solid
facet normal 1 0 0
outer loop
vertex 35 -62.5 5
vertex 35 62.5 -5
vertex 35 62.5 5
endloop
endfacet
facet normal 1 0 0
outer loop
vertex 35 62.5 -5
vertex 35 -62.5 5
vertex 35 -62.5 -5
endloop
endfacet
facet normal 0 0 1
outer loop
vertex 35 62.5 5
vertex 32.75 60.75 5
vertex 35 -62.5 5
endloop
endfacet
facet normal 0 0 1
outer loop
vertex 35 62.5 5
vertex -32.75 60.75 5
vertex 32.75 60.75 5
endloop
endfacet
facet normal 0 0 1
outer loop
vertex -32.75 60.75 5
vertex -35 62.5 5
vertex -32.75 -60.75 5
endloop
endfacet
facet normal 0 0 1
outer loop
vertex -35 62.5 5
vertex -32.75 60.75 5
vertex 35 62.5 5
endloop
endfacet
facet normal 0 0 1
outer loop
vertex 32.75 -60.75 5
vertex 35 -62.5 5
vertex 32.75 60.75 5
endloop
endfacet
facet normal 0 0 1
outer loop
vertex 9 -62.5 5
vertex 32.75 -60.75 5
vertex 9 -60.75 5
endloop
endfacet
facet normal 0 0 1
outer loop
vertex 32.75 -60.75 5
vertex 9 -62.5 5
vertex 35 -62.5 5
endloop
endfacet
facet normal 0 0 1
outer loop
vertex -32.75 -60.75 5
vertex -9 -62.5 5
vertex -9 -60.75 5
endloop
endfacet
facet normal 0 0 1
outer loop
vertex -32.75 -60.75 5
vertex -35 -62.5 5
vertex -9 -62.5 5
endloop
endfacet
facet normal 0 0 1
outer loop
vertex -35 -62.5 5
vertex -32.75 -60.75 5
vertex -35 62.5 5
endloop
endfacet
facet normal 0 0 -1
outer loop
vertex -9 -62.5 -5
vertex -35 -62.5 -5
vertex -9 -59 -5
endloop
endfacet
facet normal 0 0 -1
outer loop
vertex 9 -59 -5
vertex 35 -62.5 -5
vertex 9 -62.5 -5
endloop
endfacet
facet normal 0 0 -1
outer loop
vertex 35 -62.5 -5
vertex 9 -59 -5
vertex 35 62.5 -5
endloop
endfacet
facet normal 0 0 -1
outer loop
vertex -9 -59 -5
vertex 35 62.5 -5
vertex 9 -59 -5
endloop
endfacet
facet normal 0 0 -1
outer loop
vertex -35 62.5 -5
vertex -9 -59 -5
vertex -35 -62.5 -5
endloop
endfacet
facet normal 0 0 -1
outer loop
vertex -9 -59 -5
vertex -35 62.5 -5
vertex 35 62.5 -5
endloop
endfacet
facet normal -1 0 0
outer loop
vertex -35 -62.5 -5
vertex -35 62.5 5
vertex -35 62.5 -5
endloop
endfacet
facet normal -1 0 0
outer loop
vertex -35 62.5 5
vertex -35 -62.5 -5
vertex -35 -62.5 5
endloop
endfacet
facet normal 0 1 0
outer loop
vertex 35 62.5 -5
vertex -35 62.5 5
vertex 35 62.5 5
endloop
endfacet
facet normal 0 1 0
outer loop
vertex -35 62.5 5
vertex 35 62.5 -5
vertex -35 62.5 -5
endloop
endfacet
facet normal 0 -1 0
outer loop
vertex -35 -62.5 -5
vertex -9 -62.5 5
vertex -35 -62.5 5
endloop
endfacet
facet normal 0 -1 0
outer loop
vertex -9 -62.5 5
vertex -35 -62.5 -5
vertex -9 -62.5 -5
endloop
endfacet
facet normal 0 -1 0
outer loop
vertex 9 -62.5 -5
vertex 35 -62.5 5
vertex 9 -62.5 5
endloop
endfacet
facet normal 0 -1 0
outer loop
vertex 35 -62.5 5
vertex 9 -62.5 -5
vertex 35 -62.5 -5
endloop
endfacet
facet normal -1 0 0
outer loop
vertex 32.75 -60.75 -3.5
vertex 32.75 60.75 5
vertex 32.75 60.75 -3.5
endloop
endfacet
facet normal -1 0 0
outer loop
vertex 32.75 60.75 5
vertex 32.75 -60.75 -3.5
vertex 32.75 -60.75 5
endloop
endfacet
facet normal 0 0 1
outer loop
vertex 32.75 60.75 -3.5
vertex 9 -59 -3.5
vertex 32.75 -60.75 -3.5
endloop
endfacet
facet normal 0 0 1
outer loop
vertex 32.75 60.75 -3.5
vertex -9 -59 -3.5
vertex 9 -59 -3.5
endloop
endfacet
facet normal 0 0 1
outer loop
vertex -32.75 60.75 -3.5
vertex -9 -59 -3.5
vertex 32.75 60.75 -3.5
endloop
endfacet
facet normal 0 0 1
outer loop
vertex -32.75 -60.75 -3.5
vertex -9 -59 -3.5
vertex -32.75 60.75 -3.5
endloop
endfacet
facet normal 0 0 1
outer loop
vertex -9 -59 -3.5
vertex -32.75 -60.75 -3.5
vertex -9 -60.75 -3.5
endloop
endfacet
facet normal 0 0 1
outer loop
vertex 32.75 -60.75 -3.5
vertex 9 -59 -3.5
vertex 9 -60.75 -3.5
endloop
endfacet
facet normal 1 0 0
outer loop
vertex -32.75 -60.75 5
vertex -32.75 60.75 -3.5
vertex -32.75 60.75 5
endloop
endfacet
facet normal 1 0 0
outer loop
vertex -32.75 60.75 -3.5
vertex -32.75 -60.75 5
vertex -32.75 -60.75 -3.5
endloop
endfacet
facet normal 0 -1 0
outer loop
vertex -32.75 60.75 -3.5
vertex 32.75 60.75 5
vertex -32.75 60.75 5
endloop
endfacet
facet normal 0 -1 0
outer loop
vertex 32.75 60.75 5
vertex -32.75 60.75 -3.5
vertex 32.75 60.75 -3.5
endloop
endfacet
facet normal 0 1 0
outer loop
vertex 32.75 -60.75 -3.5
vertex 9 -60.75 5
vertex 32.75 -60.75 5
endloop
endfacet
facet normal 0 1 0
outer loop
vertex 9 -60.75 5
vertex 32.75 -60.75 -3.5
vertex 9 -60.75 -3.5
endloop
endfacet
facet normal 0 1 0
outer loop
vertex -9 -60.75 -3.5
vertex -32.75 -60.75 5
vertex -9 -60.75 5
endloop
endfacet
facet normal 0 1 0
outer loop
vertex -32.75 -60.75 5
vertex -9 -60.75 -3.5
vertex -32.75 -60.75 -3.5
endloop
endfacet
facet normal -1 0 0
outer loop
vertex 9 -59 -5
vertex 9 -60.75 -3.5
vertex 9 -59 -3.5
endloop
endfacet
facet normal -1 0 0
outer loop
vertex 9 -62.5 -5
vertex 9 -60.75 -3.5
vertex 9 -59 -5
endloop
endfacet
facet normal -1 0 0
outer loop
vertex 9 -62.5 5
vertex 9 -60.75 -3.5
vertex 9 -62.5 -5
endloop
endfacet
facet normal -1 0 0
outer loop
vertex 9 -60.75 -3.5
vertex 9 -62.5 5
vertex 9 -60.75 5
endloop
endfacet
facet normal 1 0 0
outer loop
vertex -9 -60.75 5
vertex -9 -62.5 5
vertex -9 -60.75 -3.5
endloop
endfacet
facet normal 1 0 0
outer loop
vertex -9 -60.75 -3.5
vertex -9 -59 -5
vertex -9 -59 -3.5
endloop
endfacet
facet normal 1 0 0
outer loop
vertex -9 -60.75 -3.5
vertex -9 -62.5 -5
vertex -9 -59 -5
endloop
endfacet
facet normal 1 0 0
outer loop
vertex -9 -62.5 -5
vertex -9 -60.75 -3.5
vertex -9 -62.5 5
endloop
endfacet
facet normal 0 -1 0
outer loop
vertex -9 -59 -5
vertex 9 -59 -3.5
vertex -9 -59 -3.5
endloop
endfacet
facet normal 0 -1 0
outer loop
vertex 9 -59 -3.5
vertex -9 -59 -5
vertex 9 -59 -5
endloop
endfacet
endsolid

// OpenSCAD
$fn = 100;


difference() {
    cube([70, 125, 10], true);
    translate([0, 0, 1]) cube([65.5, 121.5, 9], true);
    /*translate([-40, 17.5, 15]) rotate([0, 90, 0]) cylinder(80, 7, 7, true);
    translate([40, 19.5, 15]) rotate([0, 90, 0]) cylinder(80, 7, 7, true);
    translate([0, -24, 20]) cube([72, 60, 50], true);*/
    translate([0, -74, 0]) cube([18, 30, 50], true);
}

/*
difference() {
    union() {
translate([0, 0, 12]) cylinder(4, 18, 18, true);
cylinder(28, 0, 10, true);
    }
cylinder(100, 3, 3, true);
    
}
*/
